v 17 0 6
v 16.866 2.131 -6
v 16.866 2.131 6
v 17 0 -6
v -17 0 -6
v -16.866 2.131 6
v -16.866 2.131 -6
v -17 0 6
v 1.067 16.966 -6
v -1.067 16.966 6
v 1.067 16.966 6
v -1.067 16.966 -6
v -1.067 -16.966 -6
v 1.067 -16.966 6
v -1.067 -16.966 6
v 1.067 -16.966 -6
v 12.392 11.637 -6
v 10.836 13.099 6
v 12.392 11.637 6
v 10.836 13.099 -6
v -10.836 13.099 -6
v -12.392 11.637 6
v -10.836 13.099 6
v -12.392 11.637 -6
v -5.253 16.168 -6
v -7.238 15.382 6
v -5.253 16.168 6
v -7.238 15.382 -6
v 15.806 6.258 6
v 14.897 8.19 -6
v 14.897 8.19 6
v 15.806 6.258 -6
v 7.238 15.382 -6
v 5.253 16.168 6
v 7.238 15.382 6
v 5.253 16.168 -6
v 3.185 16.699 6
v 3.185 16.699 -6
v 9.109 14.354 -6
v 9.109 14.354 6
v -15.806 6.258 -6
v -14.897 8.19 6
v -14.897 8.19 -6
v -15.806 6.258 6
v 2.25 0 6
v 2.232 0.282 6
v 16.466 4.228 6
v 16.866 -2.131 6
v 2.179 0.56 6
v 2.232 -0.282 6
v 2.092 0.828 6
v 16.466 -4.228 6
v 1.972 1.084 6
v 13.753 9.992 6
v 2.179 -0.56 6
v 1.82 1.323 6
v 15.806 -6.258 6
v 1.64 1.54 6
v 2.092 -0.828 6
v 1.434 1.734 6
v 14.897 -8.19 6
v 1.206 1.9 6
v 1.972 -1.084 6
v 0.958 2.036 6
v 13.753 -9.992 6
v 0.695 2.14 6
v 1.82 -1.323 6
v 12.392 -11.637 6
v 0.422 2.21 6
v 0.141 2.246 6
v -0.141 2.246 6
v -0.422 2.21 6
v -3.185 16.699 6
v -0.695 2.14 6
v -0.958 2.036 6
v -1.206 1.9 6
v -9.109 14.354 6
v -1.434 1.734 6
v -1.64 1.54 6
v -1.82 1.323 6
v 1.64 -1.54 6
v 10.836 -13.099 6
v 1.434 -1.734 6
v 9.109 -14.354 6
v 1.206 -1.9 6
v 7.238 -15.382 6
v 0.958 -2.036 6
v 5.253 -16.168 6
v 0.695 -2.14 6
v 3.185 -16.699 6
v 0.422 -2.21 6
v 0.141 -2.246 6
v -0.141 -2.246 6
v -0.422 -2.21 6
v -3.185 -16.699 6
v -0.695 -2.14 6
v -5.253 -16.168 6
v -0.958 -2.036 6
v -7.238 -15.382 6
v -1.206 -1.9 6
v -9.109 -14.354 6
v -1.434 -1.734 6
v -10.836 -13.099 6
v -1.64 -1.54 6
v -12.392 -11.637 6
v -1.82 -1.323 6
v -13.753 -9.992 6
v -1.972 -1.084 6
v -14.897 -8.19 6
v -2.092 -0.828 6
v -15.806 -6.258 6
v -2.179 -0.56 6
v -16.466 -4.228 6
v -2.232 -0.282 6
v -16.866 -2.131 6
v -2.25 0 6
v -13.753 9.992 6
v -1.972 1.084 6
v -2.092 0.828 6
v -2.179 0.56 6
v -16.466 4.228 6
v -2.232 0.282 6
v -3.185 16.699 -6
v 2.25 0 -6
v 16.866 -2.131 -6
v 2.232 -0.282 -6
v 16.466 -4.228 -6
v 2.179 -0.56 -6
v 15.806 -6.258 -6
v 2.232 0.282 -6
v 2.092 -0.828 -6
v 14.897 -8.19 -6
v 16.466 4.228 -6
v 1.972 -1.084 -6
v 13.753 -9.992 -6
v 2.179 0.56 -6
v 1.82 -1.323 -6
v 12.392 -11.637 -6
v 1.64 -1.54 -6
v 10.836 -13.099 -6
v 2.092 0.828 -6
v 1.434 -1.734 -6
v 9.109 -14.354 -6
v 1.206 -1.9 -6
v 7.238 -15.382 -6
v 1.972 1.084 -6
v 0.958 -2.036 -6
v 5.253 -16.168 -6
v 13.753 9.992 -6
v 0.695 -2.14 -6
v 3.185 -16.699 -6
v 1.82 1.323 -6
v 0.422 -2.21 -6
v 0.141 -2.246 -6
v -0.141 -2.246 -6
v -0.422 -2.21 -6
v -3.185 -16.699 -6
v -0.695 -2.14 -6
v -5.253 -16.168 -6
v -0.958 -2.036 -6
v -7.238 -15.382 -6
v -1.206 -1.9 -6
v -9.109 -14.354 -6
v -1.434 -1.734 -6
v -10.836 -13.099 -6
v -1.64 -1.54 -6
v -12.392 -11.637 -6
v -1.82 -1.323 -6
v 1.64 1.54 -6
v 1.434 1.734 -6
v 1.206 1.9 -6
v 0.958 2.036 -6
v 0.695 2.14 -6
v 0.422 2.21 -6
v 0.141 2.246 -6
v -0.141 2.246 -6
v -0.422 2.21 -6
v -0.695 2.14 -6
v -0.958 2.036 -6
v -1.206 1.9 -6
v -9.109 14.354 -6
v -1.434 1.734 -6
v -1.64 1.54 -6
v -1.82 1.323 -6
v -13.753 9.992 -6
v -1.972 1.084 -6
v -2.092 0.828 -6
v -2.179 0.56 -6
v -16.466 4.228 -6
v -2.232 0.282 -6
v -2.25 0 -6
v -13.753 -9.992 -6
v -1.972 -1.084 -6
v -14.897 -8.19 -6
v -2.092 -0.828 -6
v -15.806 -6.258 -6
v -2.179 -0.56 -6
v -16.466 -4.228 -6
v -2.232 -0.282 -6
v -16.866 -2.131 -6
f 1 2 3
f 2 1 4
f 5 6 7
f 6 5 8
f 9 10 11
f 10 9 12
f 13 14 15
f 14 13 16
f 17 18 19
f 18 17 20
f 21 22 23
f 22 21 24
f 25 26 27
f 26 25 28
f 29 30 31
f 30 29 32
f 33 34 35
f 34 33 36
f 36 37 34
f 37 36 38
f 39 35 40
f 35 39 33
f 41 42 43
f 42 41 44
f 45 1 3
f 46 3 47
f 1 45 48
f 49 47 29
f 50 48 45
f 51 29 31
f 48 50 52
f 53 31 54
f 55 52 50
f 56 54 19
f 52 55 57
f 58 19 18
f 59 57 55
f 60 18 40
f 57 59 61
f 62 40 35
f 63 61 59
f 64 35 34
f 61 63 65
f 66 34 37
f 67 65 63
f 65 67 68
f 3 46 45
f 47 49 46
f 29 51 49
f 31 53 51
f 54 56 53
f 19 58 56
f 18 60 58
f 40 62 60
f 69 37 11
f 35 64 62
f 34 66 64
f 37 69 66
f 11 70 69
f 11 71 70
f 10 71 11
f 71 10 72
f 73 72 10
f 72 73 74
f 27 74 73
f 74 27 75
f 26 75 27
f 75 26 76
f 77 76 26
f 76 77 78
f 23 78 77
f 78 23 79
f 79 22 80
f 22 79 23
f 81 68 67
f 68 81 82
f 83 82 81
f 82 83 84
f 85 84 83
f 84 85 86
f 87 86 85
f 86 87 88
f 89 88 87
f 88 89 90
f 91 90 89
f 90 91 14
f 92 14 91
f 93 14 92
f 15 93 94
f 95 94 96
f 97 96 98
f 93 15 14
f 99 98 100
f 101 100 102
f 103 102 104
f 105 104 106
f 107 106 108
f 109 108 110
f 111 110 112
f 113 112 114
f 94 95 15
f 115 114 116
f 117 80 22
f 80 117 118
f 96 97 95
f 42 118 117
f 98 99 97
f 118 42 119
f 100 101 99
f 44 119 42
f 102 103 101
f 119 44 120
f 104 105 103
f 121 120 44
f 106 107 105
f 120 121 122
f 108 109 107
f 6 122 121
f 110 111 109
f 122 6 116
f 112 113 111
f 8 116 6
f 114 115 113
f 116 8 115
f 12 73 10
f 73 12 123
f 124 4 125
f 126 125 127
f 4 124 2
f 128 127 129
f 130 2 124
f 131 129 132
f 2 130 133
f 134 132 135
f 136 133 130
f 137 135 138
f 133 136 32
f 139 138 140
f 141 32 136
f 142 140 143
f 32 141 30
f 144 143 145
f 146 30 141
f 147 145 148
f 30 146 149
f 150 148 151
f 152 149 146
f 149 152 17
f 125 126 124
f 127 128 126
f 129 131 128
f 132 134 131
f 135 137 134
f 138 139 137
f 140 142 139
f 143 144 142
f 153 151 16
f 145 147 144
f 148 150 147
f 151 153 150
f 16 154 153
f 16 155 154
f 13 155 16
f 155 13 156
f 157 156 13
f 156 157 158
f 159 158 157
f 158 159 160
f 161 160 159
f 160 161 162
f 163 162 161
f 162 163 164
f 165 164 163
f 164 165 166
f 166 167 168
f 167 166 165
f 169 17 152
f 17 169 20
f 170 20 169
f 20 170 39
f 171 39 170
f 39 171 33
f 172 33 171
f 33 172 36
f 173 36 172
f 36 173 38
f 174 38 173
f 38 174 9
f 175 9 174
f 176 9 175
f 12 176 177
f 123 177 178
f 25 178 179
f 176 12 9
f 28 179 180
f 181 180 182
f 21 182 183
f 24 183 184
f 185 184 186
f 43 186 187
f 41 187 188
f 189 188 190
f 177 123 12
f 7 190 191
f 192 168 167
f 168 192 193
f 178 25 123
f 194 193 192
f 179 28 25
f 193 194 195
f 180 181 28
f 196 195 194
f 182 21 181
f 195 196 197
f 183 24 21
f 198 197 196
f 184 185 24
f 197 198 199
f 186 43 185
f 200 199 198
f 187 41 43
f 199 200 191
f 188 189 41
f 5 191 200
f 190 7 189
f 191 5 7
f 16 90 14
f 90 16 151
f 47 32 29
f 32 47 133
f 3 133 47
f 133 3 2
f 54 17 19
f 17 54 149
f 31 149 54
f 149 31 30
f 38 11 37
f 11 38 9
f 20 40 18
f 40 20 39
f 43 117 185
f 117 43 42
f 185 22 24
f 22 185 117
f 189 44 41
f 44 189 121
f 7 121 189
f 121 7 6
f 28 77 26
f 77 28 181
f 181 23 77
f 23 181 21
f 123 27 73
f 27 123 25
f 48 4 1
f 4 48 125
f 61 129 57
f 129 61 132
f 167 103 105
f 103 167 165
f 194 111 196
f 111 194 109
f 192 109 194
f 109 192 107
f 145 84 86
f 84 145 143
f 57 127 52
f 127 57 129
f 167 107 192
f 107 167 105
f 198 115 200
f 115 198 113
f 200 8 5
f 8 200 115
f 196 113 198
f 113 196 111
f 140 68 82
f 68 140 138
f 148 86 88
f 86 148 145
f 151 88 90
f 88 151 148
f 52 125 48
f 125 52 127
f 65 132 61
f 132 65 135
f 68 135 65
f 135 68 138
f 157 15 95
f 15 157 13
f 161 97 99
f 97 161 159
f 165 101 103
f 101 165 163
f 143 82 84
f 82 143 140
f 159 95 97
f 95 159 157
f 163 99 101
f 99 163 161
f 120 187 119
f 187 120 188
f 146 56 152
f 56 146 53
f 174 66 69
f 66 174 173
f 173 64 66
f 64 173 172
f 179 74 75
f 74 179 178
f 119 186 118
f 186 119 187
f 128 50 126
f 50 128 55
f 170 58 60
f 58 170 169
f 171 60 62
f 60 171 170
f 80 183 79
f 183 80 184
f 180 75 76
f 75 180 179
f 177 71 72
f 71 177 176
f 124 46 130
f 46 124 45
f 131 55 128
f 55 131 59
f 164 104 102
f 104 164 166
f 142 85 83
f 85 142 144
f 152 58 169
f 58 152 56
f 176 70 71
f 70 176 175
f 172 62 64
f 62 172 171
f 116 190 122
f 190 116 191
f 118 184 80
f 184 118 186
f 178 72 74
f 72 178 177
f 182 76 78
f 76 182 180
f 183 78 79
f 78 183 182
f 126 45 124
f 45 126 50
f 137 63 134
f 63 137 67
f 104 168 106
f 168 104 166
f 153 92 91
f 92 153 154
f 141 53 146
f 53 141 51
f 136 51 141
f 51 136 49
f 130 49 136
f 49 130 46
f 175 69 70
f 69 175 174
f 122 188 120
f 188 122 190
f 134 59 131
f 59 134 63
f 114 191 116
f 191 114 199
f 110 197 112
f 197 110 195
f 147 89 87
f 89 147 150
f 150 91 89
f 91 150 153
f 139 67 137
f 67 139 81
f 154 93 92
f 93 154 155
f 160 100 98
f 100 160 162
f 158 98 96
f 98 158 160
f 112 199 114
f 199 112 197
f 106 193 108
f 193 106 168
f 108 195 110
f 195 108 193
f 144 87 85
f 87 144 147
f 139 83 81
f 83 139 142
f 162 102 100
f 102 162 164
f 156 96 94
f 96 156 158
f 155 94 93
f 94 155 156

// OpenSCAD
$fn = 50;


difference() {
	union() {
		translate(v = [0, 0, -6.0000000000]) {
			cylinder(h = 12, r = 17.0000000000);
		}
	}
	union() {
		translate(v = [0, 0, -100.0000000000]) {
			cylinder(h = 200, r = 2.2500000000);
		}
	}
}
